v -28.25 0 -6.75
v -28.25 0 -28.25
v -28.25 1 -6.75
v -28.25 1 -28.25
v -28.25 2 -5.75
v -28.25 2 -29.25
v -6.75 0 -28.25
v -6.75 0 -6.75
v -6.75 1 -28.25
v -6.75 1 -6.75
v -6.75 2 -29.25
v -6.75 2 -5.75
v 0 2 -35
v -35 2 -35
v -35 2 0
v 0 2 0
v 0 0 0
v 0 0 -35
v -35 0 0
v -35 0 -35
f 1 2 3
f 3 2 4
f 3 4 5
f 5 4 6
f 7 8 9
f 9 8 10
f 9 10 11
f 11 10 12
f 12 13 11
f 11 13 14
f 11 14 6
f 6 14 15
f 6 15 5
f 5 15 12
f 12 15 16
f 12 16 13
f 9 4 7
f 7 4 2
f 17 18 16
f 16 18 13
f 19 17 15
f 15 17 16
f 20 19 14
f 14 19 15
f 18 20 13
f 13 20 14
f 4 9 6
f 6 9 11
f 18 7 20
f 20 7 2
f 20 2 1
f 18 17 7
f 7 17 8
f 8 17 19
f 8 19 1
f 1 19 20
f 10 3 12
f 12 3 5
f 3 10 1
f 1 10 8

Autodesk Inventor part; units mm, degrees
ref_plane "YZ Plane" through (0, 0, 0) normal (1, 0, 0) x (0, 1, 0)
ref_plane "XZ Plane" through (0, 0, 0) normal (0, 1, 0) x (-1, 0, 0)
ref_plane "XY Plane" through (0, 0, 0) normal (0, 0, 1) x (1, 0, 0)
sketch "Sketch1" plane through (0, 0, 0) normal (0, 1, 0) x (-1, 0, 0)
  line L0 (0, 0) -> (35, 0)
  line L1 (35, 0) -> (35, -35)
  line L2 (35, -35) -> (0, -35)
  line L3 (0, -35) -> (0, 0)
  line L4 (6.75, -6.75) -> (28.25, -6.75)
  line L5 (28.25, -6.75) -> (28.25, -28.25)
  line L6 (28.25, -28.25) -> (6.75, -28.25)
  line L7 (6.75, -28.25) -> (6.75, -6.75)
  line L8 (6.75, -6.75) -> (28.25, -28.25) construction
  line L9 (28.25, -6.75) -> (6.75, -28.25) construction
  point P0 (17.5, -17.5)
  dimension "d0" = 35
  dimension "d1" = 35
  dimension "d2" = 21.5
  dimension "d3" = 21.5
extrude "Extrusion1" add sketch "Sketch1" along normal blind 2
chamfer "Chamfer1" distance 1 angle 45 2 edges at (-17.5, 2, -6.75) (-17.5, 2, -28.25)
properties part number "Plug_tester"
